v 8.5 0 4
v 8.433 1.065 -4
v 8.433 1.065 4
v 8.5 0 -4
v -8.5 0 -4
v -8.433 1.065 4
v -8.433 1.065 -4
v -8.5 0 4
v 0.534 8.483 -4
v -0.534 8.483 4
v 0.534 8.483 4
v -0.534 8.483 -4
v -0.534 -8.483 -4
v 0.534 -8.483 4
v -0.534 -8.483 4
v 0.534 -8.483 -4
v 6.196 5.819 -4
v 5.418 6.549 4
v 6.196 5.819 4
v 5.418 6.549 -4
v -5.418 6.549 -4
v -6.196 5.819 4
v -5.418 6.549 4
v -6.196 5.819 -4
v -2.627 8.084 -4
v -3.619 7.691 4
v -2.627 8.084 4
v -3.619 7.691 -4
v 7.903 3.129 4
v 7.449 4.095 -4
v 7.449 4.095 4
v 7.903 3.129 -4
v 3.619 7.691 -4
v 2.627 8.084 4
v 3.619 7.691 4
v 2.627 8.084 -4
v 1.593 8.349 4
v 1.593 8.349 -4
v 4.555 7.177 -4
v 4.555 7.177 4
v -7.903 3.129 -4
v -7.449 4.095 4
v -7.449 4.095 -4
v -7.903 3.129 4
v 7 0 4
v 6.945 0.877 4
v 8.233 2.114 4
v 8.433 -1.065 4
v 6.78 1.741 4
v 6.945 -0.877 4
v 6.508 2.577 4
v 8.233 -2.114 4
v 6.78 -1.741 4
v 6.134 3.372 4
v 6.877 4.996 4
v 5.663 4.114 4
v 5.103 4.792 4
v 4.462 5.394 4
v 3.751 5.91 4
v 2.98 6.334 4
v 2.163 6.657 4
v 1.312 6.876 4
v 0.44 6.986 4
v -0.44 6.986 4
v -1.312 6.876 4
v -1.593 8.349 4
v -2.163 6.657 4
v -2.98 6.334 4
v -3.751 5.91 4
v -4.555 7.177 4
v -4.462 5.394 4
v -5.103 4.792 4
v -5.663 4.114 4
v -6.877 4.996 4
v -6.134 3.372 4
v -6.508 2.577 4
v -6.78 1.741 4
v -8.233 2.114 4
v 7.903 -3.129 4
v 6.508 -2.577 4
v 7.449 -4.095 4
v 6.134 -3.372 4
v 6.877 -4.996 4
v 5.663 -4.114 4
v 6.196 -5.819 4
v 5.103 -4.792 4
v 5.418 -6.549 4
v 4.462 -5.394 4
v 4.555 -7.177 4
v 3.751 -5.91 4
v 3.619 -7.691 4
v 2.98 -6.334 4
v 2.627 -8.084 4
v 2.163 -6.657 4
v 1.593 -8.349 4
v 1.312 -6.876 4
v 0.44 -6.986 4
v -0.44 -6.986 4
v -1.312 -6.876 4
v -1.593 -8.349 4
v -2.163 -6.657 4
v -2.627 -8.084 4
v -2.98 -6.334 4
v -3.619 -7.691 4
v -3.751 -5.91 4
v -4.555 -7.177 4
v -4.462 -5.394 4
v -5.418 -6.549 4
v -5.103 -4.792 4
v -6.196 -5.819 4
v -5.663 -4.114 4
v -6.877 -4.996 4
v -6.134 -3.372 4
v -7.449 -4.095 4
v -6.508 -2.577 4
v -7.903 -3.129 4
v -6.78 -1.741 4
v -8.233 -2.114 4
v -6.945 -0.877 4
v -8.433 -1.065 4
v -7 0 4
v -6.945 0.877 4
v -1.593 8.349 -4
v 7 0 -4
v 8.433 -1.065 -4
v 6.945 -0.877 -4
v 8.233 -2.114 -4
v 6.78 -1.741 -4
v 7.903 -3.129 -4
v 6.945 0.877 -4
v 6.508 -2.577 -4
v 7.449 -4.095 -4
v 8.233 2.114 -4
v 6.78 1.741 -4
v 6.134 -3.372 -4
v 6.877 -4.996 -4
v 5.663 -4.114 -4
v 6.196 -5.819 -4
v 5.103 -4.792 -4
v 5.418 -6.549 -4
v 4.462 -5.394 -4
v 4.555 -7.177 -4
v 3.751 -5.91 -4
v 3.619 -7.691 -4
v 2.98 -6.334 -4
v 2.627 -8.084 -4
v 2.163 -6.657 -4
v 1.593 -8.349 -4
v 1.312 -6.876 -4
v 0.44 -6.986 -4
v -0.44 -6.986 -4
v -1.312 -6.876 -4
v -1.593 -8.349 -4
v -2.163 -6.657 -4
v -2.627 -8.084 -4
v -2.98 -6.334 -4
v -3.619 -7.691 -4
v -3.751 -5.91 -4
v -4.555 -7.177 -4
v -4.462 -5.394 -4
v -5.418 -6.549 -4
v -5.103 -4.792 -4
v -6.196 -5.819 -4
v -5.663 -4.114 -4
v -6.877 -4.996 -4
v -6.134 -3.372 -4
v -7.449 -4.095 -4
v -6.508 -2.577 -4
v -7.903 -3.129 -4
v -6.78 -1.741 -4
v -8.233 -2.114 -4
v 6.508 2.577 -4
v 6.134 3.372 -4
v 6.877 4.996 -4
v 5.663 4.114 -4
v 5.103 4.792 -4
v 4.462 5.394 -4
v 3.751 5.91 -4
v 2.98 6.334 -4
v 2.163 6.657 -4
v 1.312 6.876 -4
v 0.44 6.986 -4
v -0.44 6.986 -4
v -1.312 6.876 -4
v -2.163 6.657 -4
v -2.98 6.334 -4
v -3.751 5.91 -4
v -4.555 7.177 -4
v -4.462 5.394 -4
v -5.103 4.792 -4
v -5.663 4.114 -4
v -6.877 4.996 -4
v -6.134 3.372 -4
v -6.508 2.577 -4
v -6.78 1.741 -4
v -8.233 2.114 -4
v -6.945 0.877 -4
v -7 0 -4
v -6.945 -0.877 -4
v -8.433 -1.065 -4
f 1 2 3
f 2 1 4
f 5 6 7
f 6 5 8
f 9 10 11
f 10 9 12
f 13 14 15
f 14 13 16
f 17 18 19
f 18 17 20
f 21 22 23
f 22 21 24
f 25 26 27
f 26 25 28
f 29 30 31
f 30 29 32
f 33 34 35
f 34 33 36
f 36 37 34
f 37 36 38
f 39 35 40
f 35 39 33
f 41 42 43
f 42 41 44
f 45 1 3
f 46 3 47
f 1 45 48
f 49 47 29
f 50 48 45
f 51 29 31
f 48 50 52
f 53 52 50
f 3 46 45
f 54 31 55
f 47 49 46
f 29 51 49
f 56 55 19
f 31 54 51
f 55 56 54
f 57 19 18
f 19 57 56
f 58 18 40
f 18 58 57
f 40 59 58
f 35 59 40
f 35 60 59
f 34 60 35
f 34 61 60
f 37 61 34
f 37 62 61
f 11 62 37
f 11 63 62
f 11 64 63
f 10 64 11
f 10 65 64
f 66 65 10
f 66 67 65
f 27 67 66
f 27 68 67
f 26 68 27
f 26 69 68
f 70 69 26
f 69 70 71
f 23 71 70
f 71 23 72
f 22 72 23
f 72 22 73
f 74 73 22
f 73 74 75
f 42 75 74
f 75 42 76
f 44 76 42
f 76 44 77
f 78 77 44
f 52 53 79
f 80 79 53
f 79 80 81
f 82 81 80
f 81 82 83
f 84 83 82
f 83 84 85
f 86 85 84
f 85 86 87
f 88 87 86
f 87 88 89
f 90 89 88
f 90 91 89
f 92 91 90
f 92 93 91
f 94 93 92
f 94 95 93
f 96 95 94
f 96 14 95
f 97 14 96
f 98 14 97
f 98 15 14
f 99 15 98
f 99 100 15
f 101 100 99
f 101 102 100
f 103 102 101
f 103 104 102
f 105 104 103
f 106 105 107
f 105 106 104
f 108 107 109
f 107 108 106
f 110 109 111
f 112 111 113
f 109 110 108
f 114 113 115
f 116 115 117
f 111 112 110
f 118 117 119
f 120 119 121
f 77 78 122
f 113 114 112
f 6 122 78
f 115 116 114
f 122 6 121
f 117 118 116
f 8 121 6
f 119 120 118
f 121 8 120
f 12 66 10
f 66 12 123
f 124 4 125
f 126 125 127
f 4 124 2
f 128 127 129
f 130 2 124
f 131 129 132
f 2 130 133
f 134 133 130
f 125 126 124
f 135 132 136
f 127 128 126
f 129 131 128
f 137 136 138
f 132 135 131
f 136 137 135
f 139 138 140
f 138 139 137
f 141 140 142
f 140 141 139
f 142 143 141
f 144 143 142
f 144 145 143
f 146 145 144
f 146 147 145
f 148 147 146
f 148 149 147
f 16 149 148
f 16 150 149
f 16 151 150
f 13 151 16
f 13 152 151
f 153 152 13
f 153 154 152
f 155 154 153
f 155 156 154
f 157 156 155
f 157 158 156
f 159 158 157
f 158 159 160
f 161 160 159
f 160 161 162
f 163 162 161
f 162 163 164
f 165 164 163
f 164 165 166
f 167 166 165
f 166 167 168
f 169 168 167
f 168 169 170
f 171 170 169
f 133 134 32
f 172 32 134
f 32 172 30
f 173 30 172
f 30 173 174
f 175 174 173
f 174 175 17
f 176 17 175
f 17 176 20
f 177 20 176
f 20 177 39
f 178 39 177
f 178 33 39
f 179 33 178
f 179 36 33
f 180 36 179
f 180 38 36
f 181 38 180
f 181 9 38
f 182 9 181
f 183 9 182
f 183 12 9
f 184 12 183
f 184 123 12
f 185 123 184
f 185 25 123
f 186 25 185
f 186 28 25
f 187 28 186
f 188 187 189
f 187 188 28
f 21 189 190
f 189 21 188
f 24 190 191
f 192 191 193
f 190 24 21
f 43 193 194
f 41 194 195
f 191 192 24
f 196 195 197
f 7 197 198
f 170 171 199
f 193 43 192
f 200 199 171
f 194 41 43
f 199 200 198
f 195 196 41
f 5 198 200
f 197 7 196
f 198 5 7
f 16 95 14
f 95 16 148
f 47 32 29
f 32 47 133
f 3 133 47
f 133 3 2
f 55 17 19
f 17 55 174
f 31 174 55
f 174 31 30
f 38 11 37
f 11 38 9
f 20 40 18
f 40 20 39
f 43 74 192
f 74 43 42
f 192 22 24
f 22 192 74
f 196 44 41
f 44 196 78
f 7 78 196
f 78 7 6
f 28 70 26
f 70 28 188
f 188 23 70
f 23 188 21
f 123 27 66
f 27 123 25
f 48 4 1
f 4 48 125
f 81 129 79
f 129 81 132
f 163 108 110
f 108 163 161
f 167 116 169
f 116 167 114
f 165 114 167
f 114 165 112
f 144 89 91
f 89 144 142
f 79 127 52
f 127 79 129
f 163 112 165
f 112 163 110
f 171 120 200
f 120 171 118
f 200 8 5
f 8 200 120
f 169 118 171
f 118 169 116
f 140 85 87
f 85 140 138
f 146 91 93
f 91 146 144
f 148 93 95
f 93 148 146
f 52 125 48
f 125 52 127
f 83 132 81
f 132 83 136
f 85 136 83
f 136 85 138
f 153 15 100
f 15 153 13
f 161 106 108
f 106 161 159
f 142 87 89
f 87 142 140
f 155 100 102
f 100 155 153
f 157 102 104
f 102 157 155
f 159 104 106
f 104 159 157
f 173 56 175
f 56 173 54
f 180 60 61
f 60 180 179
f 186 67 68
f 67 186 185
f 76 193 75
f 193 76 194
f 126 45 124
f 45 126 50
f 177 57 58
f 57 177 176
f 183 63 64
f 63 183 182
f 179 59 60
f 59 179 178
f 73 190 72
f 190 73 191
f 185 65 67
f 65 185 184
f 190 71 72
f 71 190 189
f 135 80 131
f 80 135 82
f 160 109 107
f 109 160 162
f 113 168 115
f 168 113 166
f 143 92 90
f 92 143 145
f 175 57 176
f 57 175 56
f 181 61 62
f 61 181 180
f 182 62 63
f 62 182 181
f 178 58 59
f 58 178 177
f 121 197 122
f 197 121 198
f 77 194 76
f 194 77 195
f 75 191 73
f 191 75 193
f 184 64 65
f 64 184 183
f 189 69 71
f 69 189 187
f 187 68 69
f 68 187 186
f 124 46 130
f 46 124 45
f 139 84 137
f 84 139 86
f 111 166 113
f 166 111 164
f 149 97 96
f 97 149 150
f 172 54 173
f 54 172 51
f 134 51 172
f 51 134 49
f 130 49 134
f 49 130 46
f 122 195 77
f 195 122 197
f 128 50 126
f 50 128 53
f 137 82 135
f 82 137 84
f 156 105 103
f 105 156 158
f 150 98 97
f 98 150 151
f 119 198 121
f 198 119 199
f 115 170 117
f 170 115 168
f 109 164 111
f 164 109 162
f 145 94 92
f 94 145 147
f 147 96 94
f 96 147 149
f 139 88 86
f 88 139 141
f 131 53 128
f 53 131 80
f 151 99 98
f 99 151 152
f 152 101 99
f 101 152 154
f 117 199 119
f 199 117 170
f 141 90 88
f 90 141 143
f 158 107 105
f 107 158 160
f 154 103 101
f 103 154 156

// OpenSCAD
$fn = 50;


difference() {
	union() {
		translate(v = [0, 0, -4.0000000000]) {
			cylinder(h = 8, r = 8.5000000000);
		}
	}
	union() {
		translate(v = [0, 0, -100.0000000000]) {
			cylinder(h = 200, r = 7);
		}
	}
}
